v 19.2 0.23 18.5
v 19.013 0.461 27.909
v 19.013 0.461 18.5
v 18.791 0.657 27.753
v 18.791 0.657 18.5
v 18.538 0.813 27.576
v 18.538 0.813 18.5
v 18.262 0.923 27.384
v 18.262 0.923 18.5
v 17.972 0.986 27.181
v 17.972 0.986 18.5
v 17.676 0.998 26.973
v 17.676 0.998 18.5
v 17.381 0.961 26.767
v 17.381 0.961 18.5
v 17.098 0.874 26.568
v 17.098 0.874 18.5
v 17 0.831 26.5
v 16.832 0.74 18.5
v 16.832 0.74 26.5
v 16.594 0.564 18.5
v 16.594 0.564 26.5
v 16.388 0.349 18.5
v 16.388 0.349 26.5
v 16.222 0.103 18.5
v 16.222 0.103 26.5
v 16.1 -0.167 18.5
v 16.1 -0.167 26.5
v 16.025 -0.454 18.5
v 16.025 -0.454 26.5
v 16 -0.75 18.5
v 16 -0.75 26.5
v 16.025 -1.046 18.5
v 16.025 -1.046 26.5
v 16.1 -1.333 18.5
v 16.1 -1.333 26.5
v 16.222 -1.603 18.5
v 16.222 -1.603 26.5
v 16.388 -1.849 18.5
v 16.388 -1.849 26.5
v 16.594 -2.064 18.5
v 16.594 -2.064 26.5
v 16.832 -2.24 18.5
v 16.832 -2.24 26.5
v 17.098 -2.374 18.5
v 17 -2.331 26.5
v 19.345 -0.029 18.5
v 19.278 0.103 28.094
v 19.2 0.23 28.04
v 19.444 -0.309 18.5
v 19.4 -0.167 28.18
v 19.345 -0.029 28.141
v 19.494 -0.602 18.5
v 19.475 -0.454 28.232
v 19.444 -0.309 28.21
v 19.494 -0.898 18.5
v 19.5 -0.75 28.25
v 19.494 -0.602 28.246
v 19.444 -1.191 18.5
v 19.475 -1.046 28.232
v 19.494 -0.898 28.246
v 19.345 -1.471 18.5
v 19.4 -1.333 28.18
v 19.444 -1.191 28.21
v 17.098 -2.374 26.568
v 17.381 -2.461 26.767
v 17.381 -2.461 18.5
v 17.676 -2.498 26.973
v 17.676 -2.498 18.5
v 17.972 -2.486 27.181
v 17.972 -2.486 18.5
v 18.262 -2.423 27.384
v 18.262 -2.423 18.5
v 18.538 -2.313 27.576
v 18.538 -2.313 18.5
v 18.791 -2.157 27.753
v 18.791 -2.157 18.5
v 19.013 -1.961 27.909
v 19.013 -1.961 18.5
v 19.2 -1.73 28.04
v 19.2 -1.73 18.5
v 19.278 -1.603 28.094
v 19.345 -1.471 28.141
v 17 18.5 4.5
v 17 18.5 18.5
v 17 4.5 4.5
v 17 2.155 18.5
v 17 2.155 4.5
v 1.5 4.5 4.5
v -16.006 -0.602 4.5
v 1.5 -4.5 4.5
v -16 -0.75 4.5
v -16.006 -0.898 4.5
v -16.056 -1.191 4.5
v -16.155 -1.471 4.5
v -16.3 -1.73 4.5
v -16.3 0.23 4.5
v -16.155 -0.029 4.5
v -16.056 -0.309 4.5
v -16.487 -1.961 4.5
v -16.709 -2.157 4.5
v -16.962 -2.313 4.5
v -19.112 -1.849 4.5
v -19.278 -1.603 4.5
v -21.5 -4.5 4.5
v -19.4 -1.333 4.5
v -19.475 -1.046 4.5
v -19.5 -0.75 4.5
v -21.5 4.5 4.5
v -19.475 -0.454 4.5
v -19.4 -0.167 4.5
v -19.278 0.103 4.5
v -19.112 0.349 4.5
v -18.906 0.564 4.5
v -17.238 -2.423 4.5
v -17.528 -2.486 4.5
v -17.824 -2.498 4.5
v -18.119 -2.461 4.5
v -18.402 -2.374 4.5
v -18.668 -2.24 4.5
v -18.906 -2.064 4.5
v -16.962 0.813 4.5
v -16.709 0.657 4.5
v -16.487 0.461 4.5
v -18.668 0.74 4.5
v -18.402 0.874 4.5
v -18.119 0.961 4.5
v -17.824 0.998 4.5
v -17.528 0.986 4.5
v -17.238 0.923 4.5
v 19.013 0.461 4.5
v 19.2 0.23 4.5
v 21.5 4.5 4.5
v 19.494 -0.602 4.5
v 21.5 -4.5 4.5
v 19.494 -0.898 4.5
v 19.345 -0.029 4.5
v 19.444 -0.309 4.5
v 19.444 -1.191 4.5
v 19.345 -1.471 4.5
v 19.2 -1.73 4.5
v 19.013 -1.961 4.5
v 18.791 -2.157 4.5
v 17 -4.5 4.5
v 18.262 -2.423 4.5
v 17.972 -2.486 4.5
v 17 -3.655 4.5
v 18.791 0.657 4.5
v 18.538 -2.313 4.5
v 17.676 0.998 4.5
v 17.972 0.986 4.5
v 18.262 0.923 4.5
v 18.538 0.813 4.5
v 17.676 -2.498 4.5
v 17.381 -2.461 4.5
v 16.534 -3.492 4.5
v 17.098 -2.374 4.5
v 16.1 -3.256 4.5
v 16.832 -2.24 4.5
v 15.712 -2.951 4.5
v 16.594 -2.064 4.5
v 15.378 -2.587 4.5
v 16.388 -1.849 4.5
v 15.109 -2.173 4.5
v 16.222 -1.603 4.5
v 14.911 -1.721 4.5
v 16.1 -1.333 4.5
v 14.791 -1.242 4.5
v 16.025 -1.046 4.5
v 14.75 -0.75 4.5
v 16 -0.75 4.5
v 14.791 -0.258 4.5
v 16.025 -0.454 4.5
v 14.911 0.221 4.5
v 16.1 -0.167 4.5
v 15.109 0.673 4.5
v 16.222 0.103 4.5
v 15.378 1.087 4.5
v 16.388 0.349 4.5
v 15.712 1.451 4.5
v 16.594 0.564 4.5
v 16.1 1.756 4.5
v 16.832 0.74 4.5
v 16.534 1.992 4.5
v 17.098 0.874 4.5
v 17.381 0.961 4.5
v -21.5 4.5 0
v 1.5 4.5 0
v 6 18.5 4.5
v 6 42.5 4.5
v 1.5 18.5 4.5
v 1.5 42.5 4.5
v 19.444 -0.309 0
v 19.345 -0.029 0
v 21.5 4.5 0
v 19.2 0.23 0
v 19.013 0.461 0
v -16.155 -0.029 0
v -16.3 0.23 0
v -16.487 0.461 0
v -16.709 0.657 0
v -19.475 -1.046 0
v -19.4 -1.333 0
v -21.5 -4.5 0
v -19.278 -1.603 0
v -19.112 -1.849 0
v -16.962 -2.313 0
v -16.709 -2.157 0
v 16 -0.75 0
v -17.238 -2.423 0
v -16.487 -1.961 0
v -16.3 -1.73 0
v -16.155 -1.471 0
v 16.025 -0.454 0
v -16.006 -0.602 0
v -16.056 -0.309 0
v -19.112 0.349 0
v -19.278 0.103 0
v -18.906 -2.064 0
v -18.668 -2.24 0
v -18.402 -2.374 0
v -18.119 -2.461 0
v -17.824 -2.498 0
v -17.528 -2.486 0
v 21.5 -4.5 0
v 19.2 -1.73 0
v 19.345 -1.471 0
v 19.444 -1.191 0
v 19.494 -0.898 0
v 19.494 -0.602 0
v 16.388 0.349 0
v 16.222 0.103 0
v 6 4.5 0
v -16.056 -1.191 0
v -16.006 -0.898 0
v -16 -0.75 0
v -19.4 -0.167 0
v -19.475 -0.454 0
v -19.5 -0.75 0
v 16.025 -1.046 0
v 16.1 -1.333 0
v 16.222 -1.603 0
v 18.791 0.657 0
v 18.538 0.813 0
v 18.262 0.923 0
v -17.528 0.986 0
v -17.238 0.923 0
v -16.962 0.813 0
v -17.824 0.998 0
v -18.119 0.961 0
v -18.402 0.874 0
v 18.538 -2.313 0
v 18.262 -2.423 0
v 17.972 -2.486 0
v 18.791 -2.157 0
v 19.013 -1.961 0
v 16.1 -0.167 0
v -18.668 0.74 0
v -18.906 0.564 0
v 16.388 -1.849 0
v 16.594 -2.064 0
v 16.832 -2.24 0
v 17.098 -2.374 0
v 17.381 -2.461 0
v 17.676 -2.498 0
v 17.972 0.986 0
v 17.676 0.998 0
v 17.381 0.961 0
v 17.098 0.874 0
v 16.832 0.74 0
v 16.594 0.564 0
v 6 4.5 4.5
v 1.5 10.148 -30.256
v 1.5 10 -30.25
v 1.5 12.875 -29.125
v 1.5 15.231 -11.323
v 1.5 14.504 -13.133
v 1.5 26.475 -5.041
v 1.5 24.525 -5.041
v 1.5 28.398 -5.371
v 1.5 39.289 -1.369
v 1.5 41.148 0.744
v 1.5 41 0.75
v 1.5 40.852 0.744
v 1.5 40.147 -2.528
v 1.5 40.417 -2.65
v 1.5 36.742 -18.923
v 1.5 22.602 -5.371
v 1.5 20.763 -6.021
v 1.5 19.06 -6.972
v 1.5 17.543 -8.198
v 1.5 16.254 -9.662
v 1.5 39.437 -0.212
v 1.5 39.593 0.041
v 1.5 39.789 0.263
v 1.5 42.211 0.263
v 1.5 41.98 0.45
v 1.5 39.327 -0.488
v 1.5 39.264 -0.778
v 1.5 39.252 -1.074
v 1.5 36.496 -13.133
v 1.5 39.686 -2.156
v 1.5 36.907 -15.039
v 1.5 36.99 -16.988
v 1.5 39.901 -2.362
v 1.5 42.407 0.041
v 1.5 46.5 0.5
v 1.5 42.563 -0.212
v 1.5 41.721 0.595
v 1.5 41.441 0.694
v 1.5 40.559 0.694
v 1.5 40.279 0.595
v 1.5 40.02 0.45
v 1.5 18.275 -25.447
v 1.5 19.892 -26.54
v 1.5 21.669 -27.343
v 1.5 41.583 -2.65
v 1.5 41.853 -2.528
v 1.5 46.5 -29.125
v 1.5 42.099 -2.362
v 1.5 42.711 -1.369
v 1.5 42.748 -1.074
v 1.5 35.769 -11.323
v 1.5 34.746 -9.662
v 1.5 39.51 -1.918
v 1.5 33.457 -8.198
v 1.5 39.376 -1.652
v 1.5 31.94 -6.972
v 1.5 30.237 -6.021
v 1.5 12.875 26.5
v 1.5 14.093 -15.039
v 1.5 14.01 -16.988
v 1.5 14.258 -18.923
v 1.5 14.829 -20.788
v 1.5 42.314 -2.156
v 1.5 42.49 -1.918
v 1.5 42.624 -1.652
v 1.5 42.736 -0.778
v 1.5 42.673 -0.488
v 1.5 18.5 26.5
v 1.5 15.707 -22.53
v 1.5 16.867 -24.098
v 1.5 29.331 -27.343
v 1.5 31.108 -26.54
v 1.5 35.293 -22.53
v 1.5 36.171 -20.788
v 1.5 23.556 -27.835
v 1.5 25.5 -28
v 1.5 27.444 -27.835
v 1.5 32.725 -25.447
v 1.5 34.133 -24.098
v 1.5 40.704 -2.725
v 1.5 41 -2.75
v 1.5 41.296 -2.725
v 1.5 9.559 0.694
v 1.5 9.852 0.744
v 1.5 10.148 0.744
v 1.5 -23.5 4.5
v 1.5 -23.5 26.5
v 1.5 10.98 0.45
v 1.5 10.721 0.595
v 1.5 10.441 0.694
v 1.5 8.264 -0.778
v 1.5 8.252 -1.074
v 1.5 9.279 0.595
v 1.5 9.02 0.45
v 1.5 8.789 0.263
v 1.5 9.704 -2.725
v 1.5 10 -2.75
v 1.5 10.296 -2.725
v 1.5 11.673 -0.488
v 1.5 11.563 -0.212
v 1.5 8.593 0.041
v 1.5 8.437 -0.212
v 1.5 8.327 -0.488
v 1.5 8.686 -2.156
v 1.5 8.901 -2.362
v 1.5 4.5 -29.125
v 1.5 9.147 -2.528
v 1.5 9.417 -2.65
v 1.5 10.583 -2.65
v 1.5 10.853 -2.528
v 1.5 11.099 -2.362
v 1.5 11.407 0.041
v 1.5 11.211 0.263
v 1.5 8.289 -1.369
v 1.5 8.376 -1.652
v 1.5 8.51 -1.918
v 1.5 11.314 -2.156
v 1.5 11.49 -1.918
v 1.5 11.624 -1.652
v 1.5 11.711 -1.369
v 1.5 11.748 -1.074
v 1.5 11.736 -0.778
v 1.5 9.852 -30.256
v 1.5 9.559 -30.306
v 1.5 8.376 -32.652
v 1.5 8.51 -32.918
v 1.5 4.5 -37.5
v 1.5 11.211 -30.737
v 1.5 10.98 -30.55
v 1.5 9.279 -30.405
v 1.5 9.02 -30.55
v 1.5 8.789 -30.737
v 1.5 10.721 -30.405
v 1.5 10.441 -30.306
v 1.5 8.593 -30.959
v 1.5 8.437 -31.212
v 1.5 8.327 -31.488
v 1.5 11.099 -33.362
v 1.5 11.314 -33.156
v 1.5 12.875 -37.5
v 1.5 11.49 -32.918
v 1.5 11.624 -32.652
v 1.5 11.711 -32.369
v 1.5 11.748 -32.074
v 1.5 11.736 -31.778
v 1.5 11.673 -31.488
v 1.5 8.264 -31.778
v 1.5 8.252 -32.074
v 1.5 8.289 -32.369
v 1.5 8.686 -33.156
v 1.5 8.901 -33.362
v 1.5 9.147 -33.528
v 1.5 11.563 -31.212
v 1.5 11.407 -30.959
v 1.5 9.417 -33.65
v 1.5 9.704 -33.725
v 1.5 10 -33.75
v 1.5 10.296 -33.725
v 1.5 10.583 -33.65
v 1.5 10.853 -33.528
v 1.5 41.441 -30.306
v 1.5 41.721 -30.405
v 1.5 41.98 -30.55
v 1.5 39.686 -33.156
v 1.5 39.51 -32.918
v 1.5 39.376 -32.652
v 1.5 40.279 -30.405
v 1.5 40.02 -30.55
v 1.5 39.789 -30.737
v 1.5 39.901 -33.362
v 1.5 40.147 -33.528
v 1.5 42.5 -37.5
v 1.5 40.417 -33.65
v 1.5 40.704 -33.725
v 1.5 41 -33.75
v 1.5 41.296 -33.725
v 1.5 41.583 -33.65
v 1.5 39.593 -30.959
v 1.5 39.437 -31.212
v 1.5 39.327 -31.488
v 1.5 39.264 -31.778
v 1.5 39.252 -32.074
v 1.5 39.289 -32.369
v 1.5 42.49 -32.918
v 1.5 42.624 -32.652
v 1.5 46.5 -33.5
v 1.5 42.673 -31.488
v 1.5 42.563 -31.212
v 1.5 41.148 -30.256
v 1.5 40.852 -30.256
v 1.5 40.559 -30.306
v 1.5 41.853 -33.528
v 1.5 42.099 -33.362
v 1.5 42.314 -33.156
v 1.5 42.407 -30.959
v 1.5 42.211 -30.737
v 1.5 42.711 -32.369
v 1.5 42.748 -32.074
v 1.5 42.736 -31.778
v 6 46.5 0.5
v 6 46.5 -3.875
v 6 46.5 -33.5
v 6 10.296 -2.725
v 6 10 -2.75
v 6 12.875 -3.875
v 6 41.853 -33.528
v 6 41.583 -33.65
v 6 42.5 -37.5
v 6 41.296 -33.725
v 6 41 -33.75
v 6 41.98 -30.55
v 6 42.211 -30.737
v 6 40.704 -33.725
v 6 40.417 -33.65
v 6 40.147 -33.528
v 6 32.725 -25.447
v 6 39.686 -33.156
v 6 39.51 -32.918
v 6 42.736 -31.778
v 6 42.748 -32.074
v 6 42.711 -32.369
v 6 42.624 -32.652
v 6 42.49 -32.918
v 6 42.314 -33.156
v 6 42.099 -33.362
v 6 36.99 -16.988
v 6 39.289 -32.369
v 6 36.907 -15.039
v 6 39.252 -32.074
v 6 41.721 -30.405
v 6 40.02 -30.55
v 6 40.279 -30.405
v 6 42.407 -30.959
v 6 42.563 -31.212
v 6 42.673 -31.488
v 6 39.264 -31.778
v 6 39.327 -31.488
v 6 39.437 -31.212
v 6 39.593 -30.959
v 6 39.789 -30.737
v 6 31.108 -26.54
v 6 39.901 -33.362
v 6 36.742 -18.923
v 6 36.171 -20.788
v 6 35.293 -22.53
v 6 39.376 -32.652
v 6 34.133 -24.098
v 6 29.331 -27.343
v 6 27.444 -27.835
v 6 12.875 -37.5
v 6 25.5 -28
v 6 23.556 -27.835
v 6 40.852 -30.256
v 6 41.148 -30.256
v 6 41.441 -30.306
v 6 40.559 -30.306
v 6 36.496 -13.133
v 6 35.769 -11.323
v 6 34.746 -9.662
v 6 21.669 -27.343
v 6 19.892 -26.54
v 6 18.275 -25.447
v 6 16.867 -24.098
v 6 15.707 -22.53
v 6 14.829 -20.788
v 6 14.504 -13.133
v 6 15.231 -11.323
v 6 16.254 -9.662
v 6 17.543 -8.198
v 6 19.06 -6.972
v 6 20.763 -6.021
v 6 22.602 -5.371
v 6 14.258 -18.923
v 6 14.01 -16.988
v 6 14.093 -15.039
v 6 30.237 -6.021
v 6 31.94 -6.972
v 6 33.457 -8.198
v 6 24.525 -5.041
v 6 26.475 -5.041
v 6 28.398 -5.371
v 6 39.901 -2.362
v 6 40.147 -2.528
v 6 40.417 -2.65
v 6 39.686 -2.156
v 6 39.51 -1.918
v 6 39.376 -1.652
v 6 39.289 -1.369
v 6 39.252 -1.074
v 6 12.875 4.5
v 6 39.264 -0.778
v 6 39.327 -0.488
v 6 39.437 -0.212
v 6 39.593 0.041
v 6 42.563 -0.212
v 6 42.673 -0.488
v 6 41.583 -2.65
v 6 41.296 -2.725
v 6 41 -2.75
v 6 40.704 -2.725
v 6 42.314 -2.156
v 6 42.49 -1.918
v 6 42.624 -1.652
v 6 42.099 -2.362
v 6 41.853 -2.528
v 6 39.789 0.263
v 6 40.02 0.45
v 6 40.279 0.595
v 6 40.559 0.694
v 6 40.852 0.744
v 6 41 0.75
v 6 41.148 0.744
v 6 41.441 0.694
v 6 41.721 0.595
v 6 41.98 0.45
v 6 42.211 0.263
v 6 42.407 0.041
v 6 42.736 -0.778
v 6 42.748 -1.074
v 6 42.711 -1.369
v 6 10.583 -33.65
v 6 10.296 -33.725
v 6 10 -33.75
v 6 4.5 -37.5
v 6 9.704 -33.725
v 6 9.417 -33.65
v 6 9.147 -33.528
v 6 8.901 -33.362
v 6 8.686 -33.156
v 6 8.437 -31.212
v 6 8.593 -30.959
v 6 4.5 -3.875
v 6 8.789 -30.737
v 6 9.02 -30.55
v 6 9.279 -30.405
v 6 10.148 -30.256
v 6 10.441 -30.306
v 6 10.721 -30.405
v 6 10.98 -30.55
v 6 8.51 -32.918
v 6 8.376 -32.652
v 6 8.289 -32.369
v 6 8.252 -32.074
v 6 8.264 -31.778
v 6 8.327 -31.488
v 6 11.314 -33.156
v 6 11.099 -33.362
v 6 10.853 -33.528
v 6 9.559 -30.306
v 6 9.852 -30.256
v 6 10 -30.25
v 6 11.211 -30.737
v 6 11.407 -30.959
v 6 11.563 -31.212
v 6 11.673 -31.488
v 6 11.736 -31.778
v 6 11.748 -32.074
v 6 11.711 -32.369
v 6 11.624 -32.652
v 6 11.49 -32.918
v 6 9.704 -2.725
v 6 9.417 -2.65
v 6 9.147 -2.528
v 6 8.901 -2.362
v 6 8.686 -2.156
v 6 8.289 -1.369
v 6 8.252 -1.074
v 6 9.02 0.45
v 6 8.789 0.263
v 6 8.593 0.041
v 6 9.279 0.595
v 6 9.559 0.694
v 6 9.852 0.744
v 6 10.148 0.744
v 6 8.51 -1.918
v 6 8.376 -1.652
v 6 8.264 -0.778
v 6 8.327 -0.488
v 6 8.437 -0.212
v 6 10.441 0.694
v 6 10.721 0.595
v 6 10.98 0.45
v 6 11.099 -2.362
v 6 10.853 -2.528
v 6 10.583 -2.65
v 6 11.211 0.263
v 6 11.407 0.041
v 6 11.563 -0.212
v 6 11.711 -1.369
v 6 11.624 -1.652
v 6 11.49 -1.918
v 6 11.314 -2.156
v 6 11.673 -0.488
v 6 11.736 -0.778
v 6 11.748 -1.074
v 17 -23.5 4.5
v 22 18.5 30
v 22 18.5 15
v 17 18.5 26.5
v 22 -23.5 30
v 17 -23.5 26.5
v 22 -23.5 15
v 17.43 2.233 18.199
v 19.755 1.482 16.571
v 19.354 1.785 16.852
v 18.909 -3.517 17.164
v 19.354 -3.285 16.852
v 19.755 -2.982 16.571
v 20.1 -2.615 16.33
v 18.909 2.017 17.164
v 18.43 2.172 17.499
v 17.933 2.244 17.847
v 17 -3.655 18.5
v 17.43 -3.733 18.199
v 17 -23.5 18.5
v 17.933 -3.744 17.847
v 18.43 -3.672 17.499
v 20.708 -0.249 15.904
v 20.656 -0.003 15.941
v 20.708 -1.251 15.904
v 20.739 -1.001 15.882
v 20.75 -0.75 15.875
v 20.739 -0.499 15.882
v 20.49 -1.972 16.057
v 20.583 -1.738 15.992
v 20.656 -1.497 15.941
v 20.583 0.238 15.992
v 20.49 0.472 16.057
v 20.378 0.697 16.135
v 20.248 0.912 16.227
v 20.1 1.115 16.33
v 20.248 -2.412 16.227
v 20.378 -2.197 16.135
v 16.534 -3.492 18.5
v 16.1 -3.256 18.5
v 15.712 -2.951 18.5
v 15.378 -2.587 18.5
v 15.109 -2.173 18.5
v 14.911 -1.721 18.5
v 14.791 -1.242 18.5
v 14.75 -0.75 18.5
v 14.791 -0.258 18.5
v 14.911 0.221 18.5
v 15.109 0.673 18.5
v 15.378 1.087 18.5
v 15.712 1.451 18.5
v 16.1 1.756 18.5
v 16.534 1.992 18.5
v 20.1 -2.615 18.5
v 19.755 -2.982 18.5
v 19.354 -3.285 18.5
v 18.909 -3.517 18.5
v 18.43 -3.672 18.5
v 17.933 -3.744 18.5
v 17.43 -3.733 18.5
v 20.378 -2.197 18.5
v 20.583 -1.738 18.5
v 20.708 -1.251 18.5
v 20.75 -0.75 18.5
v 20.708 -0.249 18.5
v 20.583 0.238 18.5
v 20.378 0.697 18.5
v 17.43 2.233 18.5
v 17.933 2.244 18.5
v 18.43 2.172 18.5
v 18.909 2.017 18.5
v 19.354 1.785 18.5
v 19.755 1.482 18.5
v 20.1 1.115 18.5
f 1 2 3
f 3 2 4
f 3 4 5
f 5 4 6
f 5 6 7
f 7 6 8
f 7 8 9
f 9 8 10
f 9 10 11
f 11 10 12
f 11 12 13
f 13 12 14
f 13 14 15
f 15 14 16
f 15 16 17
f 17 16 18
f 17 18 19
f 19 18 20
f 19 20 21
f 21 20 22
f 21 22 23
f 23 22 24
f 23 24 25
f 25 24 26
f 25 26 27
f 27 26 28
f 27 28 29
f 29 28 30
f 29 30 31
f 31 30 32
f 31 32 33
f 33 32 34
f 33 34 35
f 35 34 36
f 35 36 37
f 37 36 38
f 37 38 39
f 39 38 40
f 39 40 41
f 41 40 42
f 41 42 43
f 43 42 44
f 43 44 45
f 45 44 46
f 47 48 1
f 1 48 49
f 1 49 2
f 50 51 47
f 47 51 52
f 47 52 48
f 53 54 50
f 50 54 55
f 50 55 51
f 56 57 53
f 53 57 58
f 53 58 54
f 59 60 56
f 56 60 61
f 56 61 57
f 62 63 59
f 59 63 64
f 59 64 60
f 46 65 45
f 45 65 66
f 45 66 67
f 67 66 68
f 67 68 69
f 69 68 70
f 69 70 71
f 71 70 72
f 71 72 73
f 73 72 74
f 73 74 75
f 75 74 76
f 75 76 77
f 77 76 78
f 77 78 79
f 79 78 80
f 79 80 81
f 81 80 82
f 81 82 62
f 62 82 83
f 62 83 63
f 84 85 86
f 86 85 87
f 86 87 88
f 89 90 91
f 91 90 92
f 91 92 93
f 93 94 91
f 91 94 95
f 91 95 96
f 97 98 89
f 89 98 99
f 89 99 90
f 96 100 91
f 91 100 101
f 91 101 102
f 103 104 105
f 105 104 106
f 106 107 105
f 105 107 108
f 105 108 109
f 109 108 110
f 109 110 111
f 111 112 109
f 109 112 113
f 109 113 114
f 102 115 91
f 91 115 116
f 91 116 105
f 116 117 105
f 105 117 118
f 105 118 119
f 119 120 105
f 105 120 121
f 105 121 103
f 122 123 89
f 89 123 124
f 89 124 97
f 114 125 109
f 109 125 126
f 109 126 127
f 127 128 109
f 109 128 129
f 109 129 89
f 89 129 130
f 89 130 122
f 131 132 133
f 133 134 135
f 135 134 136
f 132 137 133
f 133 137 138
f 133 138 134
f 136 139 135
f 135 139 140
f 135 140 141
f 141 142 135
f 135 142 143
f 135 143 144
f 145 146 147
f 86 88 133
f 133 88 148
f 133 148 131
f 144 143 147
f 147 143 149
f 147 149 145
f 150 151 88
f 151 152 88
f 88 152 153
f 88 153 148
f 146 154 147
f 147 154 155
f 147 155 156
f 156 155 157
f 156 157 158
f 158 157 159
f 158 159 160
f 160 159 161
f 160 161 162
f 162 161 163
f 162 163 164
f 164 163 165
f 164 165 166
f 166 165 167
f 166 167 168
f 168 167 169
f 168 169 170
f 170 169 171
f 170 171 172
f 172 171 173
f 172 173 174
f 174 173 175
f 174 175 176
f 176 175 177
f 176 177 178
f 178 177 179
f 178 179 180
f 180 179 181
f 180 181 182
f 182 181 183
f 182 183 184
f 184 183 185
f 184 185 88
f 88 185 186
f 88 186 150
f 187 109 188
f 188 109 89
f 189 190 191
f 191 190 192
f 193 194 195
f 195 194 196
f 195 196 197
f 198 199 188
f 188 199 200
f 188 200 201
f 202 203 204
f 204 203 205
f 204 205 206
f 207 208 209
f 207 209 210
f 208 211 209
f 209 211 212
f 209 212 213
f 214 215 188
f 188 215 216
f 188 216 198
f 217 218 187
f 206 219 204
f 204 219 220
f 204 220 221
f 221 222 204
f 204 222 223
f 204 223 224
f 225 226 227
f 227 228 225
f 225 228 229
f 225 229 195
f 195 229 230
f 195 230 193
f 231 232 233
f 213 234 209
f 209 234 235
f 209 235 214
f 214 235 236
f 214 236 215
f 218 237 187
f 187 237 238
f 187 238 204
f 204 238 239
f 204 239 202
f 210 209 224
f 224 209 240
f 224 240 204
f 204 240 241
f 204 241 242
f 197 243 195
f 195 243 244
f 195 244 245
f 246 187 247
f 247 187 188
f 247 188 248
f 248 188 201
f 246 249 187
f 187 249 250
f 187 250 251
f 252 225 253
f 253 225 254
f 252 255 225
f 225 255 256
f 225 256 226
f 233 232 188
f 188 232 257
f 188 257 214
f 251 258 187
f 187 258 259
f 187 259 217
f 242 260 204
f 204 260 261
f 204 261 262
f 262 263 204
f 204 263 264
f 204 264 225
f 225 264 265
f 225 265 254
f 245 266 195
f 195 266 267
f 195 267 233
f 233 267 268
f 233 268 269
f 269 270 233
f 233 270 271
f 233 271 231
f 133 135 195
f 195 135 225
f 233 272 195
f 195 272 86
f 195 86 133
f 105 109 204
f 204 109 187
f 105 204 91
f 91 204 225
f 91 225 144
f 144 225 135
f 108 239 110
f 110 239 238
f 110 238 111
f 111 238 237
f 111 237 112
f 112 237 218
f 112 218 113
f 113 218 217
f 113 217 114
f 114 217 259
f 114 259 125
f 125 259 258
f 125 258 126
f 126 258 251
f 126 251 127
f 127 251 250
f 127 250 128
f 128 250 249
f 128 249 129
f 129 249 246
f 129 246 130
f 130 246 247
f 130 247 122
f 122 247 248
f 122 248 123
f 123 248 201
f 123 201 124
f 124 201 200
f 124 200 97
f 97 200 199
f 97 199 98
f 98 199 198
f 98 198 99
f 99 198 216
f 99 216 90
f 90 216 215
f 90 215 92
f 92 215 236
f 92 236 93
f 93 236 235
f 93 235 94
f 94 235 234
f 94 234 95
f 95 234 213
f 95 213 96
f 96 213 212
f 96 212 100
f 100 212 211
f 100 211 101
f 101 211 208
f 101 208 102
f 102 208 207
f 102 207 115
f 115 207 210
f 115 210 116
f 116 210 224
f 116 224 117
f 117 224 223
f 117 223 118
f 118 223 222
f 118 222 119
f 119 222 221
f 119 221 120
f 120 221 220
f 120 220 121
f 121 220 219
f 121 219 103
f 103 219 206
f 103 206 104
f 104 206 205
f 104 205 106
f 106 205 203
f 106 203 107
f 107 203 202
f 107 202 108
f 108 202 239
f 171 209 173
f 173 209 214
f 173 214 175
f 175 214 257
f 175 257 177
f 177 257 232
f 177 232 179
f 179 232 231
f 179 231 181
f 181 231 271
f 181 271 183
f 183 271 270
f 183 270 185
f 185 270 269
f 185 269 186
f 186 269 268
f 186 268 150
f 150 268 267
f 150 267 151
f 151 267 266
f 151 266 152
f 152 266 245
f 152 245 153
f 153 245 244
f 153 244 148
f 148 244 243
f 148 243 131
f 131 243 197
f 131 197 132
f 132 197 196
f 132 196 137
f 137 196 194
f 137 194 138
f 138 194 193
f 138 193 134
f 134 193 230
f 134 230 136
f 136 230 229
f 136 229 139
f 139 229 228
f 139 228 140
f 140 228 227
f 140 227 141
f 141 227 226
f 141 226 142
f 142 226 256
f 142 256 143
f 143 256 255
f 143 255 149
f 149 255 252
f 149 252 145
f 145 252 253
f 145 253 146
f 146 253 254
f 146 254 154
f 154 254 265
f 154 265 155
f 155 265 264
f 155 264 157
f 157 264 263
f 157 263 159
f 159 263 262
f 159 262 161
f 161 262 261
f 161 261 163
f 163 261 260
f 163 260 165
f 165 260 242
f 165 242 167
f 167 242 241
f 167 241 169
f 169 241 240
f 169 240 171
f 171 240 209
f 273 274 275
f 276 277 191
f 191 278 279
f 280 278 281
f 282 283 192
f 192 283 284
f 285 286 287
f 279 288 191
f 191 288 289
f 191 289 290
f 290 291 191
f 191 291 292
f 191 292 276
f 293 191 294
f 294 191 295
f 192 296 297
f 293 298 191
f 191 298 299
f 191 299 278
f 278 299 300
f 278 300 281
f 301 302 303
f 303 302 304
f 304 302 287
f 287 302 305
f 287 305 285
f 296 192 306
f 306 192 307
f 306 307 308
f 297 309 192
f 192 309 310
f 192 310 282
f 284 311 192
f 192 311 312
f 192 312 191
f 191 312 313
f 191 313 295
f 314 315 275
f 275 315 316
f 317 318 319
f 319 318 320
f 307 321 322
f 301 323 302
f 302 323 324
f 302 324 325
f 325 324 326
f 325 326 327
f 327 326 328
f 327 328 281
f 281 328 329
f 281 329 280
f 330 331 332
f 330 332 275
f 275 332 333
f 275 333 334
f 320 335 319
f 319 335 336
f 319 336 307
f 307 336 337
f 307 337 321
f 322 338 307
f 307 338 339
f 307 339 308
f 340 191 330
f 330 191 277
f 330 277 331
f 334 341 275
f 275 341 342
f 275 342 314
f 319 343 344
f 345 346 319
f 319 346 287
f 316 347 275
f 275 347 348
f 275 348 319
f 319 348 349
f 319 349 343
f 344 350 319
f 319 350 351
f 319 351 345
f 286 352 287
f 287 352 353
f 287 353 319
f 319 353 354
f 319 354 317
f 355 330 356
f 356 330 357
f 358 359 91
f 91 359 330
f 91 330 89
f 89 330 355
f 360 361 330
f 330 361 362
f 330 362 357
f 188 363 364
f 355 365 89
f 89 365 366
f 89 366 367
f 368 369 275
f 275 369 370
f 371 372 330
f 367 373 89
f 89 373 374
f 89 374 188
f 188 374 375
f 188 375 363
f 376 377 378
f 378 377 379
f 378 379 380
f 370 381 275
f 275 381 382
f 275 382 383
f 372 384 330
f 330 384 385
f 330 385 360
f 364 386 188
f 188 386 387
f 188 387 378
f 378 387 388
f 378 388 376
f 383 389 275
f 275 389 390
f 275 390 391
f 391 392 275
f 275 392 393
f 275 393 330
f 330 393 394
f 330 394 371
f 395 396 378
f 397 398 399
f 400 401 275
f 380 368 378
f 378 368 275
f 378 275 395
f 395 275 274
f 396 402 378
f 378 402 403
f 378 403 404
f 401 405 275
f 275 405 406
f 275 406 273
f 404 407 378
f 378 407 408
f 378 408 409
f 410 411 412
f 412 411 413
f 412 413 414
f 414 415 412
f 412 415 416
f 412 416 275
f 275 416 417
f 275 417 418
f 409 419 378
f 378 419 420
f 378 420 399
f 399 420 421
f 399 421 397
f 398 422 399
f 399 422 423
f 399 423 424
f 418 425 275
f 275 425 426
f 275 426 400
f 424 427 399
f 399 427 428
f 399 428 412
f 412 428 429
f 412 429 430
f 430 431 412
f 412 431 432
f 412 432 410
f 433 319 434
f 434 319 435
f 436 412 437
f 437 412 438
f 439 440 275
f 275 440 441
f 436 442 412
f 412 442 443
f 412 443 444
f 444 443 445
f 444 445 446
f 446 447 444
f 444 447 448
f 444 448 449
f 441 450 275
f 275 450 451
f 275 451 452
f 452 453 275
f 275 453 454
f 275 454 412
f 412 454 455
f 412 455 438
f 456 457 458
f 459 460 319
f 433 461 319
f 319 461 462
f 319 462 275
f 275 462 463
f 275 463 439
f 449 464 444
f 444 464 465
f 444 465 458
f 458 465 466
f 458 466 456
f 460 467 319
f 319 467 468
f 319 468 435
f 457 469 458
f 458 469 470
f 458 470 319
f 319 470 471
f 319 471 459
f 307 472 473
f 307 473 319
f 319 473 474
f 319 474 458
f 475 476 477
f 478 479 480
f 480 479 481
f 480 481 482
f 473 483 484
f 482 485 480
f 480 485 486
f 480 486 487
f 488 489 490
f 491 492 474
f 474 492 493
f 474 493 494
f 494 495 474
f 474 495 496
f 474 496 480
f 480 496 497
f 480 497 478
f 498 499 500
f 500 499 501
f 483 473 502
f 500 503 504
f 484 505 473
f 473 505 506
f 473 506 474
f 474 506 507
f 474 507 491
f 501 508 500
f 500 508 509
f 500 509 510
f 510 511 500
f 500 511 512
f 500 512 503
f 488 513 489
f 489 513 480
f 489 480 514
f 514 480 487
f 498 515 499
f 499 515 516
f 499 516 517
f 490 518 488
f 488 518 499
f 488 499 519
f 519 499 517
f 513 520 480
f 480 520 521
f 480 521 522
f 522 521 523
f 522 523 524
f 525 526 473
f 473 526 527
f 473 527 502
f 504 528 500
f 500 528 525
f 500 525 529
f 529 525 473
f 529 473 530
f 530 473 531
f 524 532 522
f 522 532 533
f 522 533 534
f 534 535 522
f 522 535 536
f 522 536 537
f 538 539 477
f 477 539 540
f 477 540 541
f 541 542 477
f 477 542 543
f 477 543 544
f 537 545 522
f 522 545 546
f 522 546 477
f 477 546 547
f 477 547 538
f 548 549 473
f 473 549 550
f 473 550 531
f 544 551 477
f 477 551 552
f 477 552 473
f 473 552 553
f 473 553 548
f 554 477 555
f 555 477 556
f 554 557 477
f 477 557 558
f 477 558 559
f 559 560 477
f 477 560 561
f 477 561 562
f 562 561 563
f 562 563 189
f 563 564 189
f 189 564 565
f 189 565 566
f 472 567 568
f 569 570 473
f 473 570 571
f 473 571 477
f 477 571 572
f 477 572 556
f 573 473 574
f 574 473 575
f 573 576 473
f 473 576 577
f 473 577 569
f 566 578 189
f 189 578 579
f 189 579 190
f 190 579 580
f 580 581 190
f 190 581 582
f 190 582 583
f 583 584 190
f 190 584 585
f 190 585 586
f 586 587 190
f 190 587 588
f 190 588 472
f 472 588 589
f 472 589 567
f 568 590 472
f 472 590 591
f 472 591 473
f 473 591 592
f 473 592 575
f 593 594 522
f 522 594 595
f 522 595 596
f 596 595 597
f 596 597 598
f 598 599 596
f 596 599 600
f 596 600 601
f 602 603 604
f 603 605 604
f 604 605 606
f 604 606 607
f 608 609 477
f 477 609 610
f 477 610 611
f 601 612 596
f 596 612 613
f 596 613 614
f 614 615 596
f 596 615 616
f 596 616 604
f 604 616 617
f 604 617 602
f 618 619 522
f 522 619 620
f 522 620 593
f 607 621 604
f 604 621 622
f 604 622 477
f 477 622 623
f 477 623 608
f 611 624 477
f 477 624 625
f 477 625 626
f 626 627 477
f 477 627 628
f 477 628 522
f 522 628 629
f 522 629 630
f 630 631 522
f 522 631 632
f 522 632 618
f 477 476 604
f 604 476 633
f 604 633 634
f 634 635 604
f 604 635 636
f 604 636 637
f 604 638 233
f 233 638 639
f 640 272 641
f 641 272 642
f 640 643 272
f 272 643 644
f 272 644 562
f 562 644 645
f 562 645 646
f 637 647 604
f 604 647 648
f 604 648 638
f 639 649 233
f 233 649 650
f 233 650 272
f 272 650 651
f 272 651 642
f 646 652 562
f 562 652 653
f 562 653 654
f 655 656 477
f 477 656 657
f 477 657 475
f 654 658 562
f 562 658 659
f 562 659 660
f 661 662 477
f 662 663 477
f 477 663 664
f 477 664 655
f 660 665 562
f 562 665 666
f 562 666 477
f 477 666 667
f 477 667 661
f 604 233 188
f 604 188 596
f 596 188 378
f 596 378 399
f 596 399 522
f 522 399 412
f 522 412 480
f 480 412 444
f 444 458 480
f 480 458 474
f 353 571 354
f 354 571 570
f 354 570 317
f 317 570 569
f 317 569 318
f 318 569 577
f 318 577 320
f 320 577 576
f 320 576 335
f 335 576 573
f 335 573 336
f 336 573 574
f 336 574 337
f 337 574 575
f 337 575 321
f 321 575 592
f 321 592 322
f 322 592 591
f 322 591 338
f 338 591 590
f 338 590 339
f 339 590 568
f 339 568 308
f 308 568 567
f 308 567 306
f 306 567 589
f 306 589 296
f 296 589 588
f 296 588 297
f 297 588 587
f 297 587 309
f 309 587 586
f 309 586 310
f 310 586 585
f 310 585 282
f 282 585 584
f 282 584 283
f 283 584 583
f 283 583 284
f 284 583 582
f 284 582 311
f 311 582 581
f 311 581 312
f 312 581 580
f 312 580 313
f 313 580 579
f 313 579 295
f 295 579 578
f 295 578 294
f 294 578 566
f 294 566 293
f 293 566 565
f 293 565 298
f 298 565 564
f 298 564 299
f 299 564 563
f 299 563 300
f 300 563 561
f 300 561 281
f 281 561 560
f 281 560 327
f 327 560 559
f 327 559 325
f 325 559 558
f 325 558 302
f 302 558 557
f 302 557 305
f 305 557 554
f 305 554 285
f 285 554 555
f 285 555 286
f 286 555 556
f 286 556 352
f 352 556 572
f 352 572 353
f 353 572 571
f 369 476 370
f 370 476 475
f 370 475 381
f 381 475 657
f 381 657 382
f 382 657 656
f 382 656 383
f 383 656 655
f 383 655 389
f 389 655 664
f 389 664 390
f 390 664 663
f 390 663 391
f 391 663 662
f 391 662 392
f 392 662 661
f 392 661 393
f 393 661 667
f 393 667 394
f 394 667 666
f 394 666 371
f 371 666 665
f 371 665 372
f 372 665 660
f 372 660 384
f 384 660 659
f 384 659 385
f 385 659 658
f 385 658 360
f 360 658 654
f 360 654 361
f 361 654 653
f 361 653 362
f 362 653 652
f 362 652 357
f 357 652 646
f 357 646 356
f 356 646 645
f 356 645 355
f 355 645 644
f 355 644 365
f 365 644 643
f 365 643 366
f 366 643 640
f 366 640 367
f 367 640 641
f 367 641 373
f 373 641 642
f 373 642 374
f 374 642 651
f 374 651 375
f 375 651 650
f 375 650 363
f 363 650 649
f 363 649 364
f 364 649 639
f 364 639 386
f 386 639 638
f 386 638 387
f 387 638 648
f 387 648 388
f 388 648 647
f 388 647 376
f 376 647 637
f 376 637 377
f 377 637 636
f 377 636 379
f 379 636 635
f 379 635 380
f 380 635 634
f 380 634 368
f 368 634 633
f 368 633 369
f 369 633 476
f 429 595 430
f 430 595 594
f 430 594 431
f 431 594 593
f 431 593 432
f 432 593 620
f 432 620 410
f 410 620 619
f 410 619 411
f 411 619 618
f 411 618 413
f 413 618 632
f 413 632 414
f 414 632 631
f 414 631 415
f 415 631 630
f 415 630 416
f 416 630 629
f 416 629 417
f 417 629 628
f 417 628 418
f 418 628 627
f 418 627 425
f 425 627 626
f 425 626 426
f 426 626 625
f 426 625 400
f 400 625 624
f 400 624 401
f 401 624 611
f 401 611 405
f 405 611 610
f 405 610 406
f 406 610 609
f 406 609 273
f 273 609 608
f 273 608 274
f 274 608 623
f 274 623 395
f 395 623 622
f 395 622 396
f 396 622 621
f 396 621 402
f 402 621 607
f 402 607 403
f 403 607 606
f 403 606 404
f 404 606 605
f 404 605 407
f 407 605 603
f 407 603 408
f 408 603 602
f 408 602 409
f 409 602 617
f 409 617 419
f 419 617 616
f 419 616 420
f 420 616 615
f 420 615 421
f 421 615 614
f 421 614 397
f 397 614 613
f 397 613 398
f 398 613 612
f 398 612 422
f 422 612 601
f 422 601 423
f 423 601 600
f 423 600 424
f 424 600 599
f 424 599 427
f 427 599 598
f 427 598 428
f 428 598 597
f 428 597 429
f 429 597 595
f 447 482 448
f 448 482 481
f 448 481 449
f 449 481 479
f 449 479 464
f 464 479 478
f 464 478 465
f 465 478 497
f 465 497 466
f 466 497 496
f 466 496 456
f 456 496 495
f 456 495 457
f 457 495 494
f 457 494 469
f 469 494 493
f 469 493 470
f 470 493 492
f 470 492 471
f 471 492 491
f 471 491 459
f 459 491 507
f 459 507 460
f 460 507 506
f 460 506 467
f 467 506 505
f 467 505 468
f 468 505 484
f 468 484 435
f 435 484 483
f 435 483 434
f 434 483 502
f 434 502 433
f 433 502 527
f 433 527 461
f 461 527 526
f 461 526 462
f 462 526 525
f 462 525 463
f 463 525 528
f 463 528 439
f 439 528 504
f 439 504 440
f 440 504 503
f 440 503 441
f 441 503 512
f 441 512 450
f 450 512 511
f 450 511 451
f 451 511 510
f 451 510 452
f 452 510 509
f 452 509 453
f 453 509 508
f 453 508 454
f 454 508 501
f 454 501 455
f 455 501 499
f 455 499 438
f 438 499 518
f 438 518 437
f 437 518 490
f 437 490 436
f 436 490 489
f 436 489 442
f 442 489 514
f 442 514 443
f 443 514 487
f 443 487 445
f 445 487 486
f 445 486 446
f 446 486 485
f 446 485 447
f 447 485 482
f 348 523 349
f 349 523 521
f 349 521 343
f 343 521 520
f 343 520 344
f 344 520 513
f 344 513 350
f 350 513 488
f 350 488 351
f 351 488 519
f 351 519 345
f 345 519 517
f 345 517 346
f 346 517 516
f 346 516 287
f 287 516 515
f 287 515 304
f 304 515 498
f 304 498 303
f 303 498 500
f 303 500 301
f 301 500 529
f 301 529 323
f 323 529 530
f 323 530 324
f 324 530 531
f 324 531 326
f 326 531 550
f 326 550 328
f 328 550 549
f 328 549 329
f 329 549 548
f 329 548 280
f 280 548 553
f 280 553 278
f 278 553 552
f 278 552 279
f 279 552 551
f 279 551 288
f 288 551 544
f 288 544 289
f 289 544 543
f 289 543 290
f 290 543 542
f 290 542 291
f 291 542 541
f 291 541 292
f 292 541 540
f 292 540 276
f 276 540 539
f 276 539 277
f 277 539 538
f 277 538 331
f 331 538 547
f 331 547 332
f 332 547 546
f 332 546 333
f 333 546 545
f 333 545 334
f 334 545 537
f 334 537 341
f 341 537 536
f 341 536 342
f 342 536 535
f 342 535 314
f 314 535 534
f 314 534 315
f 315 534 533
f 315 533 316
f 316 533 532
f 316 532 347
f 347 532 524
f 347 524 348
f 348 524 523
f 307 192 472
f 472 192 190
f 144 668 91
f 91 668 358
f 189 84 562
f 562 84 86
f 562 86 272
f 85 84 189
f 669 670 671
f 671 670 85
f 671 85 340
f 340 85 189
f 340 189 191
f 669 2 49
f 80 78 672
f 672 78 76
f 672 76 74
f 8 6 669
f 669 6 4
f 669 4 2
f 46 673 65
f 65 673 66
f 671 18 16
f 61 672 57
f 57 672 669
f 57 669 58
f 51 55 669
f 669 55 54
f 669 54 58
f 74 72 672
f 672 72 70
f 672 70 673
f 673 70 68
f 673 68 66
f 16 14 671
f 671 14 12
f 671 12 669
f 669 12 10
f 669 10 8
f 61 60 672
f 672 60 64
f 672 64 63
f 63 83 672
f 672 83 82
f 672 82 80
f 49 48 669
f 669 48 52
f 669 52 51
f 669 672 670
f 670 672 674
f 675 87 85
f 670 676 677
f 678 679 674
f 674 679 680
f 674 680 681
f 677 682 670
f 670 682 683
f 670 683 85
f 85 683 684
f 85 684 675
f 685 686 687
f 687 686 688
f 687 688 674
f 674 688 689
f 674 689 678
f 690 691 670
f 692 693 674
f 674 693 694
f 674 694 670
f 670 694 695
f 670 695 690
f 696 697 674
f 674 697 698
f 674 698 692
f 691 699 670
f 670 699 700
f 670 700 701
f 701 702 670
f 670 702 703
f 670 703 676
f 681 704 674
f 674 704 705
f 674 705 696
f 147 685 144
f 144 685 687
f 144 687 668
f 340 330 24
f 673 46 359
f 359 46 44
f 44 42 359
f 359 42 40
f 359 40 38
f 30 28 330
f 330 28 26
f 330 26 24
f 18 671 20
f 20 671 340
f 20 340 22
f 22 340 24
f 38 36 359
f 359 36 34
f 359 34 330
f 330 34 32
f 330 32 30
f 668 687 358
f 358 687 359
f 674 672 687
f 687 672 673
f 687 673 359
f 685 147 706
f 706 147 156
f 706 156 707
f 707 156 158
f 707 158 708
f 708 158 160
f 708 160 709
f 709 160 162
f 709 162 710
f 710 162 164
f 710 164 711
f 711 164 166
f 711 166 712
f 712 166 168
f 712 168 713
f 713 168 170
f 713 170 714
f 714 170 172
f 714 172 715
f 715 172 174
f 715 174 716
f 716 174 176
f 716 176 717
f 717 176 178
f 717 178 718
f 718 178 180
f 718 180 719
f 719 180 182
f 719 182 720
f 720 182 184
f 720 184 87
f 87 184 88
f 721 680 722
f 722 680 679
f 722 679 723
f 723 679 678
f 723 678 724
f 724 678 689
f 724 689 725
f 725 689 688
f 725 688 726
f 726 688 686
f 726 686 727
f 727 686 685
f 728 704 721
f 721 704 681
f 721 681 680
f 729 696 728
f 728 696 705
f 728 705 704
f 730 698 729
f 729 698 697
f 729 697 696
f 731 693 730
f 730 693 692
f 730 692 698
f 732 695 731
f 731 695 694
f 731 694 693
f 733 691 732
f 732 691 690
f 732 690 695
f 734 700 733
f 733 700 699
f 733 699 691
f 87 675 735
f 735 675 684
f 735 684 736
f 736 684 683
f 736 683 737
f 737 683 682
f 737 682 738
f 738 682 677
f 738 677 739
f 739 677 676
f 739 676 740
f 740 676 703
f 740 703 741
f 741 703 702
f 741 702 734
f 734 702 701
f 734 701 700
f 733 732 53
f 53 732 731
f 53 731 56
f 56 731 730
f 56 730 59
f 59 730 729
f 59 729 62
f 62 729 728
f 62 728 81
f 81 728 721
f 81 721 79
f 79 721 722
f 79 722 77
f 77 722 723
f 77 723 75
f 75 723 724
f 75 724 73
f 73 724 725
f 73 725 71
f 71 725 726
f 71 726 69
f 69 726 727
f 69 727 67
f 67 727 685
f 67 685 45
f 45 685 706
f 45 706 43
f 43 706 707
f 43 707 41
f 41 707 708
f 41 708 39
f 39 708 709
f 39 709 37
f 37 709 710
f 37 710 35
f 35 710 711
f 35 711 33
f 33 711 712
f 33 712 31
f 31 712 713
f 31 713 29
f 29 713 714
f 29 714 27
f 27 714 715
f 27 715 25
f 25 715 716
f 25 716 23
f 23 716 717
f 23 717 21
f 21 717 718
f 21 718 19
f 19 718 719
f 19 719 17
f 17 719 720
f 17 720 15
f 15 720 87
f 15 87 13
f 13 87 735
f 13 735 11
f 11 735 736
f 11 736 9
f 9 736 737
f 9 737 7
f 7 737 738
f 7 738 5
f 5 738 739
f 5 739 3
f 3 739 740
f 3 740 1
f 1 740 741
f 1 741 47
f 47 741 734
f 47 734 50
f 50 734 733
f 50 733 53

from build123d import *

# Parameters (mm, degrees)
SKETCH_1_W            = 43
SKETCH_1_H            = 9
SKETCH_1_R            = 1.75
EXTRUDE_1_DEPTH       = 4.5
SKETCH_2_W            = 4.5
SKETCH_2_H            = 42
EXTRUDE_2_DEPTH       = 42
SKETCH_3_R            = 11.5
SKETCH_3_R_2          = 1.75
CUT_EXTRUDE_2_DEPTH   = 4.5
EXTRUDE_10_DEPTH      = 14
EXTRUDE_10_DEPTH_BACK = 28
SKETCH_11_W           = 5.5
SKETCH_11_H           = 22
SKETCH_1_6_R          = 1.75
CUT_EXTRUDE_7_DEPTH   = 64.659249132
CUT_EXTRUDE_START     = -4.5
SKETCH_12_R           = 3
CUT_EXTRUDE_8_DEPTH   = 14


with BuildPart() as part:
    # 草图1 → 凸台-拉伸1 (new body)
    with BuildSketch(Plane.XY):
        Rectangle(SKETCH_1_W, SKETCH_1_H)
        with Locations((-17.75, -0.75)):
            Circle(SKETCH_1_R, mode=Mode.SUBTRACT)
        with Locations(Location((17.75, -0.75, 0), (0, 0, 180))):
            Circle(SKETCH_1_R, mode=Mode.SUBTRACT)
    extrude(amount=EXTRUDE_1_DEPTH)

    # 草图2 → 凸台-拉伸2 (add)
    with BuildSketch(Plane.XY.offset(4.5)):
        with Locations((3.75, 25.5)):
            Rectangle(SKETCH_2_W, SKETCH_2_H)
    extrude(amount=-EXTRUDE_2_DEPTH)

    # 草图3 → 切除-拉伸2 (cut)
    with BuildSketch(Plane(origin=(6, 0, 0), x_dir=(0, 0, -1), z_dir=(1, 0, 0))):
        with Locations((16.5, 25.5)):
            Circle(SKETCH_3_R)
        with Locations((32, 41)):
            Circle(SKETCH_3_R_2)
        with Locations(Location((32, 10, 0), (0, 0, 180))):
            Circle(SKETCH_3_R_2)
        with Locations((1, 10)):
            Circle(SKETCH_3_R_2)
        with Locations(Location((1, 41, 0), (0, 0, 180))):
            Circle(SKETCH_3_R_2)
        Polygon((33.5, 46.5), (37.5, 42.5), (37.5, 46.5), align=None)
        Polygon((-0.5, 46.5), (-4.5, 42.5), (-4.5, 46.5), align=None)
    extrude(amount=-CUT_EXTRUDE_2_DEPTH, mode=Mode.SUBTRACT)

    # 草图11 → 凸台-拉伸10 (add, two sides: drawn at the far end of the back side and taken through both)
    with BuildSketch(Plane(origin=(0, 4.5, 0), x_dir=(1, 0, 0), z_dir=(0, 1, 0)).offset(-EXTRUDE_10_DEPTH_BACK)):
        Polygon((22, -22.5), (22, -15), (17, -18.5), (17, -22.5), align=None)
        Polygon((17, -22.5), (17, -18.5), (17, -4.5), (7, -4.5), (7, -26.5), (17, -26.5), align=None)
        Polygon((22, -30), (22, -22.5), (17, -22.5), (17, -26.5), align=None)
        with Locations((4.25, -15.5)):
            Rectangle(SKETCH_11_W, SKETCH_11_H)
    extrude(amount=EXTRUDE_10_DEPTH + EXTRUDE_10_DEPTH_BACK)

    # 草图1<6> → 切除-拉伸7 (cut, through all)
    with BuildSketch(Plane.XY):
        with Locations(Location((17.75, -0.75, 0), (0, 0, 180))):
            Circle(SKETCH_1_6_R)
    extrude(amount=CUT_EXTRUDE_7_DEPTH, mode=Mode.SUBTRACT)

    # 草图12 → 切除-拉伸8 (cut)
    with BuildSketch(Plane(origin=(0, 0, 0), x_dir=(-1, 0, 0), z_dir=(0, 0, -1)).offset(CUT_EXTRUDE_START)):
        with Locations((-17.75, -0.75)):
            Circle(SKETCH_12_R)
    extrude(amount=-CUT_EXTRUDE_8_DEPTH, mode=Mode.SUBTRACT)


solid = part.part
